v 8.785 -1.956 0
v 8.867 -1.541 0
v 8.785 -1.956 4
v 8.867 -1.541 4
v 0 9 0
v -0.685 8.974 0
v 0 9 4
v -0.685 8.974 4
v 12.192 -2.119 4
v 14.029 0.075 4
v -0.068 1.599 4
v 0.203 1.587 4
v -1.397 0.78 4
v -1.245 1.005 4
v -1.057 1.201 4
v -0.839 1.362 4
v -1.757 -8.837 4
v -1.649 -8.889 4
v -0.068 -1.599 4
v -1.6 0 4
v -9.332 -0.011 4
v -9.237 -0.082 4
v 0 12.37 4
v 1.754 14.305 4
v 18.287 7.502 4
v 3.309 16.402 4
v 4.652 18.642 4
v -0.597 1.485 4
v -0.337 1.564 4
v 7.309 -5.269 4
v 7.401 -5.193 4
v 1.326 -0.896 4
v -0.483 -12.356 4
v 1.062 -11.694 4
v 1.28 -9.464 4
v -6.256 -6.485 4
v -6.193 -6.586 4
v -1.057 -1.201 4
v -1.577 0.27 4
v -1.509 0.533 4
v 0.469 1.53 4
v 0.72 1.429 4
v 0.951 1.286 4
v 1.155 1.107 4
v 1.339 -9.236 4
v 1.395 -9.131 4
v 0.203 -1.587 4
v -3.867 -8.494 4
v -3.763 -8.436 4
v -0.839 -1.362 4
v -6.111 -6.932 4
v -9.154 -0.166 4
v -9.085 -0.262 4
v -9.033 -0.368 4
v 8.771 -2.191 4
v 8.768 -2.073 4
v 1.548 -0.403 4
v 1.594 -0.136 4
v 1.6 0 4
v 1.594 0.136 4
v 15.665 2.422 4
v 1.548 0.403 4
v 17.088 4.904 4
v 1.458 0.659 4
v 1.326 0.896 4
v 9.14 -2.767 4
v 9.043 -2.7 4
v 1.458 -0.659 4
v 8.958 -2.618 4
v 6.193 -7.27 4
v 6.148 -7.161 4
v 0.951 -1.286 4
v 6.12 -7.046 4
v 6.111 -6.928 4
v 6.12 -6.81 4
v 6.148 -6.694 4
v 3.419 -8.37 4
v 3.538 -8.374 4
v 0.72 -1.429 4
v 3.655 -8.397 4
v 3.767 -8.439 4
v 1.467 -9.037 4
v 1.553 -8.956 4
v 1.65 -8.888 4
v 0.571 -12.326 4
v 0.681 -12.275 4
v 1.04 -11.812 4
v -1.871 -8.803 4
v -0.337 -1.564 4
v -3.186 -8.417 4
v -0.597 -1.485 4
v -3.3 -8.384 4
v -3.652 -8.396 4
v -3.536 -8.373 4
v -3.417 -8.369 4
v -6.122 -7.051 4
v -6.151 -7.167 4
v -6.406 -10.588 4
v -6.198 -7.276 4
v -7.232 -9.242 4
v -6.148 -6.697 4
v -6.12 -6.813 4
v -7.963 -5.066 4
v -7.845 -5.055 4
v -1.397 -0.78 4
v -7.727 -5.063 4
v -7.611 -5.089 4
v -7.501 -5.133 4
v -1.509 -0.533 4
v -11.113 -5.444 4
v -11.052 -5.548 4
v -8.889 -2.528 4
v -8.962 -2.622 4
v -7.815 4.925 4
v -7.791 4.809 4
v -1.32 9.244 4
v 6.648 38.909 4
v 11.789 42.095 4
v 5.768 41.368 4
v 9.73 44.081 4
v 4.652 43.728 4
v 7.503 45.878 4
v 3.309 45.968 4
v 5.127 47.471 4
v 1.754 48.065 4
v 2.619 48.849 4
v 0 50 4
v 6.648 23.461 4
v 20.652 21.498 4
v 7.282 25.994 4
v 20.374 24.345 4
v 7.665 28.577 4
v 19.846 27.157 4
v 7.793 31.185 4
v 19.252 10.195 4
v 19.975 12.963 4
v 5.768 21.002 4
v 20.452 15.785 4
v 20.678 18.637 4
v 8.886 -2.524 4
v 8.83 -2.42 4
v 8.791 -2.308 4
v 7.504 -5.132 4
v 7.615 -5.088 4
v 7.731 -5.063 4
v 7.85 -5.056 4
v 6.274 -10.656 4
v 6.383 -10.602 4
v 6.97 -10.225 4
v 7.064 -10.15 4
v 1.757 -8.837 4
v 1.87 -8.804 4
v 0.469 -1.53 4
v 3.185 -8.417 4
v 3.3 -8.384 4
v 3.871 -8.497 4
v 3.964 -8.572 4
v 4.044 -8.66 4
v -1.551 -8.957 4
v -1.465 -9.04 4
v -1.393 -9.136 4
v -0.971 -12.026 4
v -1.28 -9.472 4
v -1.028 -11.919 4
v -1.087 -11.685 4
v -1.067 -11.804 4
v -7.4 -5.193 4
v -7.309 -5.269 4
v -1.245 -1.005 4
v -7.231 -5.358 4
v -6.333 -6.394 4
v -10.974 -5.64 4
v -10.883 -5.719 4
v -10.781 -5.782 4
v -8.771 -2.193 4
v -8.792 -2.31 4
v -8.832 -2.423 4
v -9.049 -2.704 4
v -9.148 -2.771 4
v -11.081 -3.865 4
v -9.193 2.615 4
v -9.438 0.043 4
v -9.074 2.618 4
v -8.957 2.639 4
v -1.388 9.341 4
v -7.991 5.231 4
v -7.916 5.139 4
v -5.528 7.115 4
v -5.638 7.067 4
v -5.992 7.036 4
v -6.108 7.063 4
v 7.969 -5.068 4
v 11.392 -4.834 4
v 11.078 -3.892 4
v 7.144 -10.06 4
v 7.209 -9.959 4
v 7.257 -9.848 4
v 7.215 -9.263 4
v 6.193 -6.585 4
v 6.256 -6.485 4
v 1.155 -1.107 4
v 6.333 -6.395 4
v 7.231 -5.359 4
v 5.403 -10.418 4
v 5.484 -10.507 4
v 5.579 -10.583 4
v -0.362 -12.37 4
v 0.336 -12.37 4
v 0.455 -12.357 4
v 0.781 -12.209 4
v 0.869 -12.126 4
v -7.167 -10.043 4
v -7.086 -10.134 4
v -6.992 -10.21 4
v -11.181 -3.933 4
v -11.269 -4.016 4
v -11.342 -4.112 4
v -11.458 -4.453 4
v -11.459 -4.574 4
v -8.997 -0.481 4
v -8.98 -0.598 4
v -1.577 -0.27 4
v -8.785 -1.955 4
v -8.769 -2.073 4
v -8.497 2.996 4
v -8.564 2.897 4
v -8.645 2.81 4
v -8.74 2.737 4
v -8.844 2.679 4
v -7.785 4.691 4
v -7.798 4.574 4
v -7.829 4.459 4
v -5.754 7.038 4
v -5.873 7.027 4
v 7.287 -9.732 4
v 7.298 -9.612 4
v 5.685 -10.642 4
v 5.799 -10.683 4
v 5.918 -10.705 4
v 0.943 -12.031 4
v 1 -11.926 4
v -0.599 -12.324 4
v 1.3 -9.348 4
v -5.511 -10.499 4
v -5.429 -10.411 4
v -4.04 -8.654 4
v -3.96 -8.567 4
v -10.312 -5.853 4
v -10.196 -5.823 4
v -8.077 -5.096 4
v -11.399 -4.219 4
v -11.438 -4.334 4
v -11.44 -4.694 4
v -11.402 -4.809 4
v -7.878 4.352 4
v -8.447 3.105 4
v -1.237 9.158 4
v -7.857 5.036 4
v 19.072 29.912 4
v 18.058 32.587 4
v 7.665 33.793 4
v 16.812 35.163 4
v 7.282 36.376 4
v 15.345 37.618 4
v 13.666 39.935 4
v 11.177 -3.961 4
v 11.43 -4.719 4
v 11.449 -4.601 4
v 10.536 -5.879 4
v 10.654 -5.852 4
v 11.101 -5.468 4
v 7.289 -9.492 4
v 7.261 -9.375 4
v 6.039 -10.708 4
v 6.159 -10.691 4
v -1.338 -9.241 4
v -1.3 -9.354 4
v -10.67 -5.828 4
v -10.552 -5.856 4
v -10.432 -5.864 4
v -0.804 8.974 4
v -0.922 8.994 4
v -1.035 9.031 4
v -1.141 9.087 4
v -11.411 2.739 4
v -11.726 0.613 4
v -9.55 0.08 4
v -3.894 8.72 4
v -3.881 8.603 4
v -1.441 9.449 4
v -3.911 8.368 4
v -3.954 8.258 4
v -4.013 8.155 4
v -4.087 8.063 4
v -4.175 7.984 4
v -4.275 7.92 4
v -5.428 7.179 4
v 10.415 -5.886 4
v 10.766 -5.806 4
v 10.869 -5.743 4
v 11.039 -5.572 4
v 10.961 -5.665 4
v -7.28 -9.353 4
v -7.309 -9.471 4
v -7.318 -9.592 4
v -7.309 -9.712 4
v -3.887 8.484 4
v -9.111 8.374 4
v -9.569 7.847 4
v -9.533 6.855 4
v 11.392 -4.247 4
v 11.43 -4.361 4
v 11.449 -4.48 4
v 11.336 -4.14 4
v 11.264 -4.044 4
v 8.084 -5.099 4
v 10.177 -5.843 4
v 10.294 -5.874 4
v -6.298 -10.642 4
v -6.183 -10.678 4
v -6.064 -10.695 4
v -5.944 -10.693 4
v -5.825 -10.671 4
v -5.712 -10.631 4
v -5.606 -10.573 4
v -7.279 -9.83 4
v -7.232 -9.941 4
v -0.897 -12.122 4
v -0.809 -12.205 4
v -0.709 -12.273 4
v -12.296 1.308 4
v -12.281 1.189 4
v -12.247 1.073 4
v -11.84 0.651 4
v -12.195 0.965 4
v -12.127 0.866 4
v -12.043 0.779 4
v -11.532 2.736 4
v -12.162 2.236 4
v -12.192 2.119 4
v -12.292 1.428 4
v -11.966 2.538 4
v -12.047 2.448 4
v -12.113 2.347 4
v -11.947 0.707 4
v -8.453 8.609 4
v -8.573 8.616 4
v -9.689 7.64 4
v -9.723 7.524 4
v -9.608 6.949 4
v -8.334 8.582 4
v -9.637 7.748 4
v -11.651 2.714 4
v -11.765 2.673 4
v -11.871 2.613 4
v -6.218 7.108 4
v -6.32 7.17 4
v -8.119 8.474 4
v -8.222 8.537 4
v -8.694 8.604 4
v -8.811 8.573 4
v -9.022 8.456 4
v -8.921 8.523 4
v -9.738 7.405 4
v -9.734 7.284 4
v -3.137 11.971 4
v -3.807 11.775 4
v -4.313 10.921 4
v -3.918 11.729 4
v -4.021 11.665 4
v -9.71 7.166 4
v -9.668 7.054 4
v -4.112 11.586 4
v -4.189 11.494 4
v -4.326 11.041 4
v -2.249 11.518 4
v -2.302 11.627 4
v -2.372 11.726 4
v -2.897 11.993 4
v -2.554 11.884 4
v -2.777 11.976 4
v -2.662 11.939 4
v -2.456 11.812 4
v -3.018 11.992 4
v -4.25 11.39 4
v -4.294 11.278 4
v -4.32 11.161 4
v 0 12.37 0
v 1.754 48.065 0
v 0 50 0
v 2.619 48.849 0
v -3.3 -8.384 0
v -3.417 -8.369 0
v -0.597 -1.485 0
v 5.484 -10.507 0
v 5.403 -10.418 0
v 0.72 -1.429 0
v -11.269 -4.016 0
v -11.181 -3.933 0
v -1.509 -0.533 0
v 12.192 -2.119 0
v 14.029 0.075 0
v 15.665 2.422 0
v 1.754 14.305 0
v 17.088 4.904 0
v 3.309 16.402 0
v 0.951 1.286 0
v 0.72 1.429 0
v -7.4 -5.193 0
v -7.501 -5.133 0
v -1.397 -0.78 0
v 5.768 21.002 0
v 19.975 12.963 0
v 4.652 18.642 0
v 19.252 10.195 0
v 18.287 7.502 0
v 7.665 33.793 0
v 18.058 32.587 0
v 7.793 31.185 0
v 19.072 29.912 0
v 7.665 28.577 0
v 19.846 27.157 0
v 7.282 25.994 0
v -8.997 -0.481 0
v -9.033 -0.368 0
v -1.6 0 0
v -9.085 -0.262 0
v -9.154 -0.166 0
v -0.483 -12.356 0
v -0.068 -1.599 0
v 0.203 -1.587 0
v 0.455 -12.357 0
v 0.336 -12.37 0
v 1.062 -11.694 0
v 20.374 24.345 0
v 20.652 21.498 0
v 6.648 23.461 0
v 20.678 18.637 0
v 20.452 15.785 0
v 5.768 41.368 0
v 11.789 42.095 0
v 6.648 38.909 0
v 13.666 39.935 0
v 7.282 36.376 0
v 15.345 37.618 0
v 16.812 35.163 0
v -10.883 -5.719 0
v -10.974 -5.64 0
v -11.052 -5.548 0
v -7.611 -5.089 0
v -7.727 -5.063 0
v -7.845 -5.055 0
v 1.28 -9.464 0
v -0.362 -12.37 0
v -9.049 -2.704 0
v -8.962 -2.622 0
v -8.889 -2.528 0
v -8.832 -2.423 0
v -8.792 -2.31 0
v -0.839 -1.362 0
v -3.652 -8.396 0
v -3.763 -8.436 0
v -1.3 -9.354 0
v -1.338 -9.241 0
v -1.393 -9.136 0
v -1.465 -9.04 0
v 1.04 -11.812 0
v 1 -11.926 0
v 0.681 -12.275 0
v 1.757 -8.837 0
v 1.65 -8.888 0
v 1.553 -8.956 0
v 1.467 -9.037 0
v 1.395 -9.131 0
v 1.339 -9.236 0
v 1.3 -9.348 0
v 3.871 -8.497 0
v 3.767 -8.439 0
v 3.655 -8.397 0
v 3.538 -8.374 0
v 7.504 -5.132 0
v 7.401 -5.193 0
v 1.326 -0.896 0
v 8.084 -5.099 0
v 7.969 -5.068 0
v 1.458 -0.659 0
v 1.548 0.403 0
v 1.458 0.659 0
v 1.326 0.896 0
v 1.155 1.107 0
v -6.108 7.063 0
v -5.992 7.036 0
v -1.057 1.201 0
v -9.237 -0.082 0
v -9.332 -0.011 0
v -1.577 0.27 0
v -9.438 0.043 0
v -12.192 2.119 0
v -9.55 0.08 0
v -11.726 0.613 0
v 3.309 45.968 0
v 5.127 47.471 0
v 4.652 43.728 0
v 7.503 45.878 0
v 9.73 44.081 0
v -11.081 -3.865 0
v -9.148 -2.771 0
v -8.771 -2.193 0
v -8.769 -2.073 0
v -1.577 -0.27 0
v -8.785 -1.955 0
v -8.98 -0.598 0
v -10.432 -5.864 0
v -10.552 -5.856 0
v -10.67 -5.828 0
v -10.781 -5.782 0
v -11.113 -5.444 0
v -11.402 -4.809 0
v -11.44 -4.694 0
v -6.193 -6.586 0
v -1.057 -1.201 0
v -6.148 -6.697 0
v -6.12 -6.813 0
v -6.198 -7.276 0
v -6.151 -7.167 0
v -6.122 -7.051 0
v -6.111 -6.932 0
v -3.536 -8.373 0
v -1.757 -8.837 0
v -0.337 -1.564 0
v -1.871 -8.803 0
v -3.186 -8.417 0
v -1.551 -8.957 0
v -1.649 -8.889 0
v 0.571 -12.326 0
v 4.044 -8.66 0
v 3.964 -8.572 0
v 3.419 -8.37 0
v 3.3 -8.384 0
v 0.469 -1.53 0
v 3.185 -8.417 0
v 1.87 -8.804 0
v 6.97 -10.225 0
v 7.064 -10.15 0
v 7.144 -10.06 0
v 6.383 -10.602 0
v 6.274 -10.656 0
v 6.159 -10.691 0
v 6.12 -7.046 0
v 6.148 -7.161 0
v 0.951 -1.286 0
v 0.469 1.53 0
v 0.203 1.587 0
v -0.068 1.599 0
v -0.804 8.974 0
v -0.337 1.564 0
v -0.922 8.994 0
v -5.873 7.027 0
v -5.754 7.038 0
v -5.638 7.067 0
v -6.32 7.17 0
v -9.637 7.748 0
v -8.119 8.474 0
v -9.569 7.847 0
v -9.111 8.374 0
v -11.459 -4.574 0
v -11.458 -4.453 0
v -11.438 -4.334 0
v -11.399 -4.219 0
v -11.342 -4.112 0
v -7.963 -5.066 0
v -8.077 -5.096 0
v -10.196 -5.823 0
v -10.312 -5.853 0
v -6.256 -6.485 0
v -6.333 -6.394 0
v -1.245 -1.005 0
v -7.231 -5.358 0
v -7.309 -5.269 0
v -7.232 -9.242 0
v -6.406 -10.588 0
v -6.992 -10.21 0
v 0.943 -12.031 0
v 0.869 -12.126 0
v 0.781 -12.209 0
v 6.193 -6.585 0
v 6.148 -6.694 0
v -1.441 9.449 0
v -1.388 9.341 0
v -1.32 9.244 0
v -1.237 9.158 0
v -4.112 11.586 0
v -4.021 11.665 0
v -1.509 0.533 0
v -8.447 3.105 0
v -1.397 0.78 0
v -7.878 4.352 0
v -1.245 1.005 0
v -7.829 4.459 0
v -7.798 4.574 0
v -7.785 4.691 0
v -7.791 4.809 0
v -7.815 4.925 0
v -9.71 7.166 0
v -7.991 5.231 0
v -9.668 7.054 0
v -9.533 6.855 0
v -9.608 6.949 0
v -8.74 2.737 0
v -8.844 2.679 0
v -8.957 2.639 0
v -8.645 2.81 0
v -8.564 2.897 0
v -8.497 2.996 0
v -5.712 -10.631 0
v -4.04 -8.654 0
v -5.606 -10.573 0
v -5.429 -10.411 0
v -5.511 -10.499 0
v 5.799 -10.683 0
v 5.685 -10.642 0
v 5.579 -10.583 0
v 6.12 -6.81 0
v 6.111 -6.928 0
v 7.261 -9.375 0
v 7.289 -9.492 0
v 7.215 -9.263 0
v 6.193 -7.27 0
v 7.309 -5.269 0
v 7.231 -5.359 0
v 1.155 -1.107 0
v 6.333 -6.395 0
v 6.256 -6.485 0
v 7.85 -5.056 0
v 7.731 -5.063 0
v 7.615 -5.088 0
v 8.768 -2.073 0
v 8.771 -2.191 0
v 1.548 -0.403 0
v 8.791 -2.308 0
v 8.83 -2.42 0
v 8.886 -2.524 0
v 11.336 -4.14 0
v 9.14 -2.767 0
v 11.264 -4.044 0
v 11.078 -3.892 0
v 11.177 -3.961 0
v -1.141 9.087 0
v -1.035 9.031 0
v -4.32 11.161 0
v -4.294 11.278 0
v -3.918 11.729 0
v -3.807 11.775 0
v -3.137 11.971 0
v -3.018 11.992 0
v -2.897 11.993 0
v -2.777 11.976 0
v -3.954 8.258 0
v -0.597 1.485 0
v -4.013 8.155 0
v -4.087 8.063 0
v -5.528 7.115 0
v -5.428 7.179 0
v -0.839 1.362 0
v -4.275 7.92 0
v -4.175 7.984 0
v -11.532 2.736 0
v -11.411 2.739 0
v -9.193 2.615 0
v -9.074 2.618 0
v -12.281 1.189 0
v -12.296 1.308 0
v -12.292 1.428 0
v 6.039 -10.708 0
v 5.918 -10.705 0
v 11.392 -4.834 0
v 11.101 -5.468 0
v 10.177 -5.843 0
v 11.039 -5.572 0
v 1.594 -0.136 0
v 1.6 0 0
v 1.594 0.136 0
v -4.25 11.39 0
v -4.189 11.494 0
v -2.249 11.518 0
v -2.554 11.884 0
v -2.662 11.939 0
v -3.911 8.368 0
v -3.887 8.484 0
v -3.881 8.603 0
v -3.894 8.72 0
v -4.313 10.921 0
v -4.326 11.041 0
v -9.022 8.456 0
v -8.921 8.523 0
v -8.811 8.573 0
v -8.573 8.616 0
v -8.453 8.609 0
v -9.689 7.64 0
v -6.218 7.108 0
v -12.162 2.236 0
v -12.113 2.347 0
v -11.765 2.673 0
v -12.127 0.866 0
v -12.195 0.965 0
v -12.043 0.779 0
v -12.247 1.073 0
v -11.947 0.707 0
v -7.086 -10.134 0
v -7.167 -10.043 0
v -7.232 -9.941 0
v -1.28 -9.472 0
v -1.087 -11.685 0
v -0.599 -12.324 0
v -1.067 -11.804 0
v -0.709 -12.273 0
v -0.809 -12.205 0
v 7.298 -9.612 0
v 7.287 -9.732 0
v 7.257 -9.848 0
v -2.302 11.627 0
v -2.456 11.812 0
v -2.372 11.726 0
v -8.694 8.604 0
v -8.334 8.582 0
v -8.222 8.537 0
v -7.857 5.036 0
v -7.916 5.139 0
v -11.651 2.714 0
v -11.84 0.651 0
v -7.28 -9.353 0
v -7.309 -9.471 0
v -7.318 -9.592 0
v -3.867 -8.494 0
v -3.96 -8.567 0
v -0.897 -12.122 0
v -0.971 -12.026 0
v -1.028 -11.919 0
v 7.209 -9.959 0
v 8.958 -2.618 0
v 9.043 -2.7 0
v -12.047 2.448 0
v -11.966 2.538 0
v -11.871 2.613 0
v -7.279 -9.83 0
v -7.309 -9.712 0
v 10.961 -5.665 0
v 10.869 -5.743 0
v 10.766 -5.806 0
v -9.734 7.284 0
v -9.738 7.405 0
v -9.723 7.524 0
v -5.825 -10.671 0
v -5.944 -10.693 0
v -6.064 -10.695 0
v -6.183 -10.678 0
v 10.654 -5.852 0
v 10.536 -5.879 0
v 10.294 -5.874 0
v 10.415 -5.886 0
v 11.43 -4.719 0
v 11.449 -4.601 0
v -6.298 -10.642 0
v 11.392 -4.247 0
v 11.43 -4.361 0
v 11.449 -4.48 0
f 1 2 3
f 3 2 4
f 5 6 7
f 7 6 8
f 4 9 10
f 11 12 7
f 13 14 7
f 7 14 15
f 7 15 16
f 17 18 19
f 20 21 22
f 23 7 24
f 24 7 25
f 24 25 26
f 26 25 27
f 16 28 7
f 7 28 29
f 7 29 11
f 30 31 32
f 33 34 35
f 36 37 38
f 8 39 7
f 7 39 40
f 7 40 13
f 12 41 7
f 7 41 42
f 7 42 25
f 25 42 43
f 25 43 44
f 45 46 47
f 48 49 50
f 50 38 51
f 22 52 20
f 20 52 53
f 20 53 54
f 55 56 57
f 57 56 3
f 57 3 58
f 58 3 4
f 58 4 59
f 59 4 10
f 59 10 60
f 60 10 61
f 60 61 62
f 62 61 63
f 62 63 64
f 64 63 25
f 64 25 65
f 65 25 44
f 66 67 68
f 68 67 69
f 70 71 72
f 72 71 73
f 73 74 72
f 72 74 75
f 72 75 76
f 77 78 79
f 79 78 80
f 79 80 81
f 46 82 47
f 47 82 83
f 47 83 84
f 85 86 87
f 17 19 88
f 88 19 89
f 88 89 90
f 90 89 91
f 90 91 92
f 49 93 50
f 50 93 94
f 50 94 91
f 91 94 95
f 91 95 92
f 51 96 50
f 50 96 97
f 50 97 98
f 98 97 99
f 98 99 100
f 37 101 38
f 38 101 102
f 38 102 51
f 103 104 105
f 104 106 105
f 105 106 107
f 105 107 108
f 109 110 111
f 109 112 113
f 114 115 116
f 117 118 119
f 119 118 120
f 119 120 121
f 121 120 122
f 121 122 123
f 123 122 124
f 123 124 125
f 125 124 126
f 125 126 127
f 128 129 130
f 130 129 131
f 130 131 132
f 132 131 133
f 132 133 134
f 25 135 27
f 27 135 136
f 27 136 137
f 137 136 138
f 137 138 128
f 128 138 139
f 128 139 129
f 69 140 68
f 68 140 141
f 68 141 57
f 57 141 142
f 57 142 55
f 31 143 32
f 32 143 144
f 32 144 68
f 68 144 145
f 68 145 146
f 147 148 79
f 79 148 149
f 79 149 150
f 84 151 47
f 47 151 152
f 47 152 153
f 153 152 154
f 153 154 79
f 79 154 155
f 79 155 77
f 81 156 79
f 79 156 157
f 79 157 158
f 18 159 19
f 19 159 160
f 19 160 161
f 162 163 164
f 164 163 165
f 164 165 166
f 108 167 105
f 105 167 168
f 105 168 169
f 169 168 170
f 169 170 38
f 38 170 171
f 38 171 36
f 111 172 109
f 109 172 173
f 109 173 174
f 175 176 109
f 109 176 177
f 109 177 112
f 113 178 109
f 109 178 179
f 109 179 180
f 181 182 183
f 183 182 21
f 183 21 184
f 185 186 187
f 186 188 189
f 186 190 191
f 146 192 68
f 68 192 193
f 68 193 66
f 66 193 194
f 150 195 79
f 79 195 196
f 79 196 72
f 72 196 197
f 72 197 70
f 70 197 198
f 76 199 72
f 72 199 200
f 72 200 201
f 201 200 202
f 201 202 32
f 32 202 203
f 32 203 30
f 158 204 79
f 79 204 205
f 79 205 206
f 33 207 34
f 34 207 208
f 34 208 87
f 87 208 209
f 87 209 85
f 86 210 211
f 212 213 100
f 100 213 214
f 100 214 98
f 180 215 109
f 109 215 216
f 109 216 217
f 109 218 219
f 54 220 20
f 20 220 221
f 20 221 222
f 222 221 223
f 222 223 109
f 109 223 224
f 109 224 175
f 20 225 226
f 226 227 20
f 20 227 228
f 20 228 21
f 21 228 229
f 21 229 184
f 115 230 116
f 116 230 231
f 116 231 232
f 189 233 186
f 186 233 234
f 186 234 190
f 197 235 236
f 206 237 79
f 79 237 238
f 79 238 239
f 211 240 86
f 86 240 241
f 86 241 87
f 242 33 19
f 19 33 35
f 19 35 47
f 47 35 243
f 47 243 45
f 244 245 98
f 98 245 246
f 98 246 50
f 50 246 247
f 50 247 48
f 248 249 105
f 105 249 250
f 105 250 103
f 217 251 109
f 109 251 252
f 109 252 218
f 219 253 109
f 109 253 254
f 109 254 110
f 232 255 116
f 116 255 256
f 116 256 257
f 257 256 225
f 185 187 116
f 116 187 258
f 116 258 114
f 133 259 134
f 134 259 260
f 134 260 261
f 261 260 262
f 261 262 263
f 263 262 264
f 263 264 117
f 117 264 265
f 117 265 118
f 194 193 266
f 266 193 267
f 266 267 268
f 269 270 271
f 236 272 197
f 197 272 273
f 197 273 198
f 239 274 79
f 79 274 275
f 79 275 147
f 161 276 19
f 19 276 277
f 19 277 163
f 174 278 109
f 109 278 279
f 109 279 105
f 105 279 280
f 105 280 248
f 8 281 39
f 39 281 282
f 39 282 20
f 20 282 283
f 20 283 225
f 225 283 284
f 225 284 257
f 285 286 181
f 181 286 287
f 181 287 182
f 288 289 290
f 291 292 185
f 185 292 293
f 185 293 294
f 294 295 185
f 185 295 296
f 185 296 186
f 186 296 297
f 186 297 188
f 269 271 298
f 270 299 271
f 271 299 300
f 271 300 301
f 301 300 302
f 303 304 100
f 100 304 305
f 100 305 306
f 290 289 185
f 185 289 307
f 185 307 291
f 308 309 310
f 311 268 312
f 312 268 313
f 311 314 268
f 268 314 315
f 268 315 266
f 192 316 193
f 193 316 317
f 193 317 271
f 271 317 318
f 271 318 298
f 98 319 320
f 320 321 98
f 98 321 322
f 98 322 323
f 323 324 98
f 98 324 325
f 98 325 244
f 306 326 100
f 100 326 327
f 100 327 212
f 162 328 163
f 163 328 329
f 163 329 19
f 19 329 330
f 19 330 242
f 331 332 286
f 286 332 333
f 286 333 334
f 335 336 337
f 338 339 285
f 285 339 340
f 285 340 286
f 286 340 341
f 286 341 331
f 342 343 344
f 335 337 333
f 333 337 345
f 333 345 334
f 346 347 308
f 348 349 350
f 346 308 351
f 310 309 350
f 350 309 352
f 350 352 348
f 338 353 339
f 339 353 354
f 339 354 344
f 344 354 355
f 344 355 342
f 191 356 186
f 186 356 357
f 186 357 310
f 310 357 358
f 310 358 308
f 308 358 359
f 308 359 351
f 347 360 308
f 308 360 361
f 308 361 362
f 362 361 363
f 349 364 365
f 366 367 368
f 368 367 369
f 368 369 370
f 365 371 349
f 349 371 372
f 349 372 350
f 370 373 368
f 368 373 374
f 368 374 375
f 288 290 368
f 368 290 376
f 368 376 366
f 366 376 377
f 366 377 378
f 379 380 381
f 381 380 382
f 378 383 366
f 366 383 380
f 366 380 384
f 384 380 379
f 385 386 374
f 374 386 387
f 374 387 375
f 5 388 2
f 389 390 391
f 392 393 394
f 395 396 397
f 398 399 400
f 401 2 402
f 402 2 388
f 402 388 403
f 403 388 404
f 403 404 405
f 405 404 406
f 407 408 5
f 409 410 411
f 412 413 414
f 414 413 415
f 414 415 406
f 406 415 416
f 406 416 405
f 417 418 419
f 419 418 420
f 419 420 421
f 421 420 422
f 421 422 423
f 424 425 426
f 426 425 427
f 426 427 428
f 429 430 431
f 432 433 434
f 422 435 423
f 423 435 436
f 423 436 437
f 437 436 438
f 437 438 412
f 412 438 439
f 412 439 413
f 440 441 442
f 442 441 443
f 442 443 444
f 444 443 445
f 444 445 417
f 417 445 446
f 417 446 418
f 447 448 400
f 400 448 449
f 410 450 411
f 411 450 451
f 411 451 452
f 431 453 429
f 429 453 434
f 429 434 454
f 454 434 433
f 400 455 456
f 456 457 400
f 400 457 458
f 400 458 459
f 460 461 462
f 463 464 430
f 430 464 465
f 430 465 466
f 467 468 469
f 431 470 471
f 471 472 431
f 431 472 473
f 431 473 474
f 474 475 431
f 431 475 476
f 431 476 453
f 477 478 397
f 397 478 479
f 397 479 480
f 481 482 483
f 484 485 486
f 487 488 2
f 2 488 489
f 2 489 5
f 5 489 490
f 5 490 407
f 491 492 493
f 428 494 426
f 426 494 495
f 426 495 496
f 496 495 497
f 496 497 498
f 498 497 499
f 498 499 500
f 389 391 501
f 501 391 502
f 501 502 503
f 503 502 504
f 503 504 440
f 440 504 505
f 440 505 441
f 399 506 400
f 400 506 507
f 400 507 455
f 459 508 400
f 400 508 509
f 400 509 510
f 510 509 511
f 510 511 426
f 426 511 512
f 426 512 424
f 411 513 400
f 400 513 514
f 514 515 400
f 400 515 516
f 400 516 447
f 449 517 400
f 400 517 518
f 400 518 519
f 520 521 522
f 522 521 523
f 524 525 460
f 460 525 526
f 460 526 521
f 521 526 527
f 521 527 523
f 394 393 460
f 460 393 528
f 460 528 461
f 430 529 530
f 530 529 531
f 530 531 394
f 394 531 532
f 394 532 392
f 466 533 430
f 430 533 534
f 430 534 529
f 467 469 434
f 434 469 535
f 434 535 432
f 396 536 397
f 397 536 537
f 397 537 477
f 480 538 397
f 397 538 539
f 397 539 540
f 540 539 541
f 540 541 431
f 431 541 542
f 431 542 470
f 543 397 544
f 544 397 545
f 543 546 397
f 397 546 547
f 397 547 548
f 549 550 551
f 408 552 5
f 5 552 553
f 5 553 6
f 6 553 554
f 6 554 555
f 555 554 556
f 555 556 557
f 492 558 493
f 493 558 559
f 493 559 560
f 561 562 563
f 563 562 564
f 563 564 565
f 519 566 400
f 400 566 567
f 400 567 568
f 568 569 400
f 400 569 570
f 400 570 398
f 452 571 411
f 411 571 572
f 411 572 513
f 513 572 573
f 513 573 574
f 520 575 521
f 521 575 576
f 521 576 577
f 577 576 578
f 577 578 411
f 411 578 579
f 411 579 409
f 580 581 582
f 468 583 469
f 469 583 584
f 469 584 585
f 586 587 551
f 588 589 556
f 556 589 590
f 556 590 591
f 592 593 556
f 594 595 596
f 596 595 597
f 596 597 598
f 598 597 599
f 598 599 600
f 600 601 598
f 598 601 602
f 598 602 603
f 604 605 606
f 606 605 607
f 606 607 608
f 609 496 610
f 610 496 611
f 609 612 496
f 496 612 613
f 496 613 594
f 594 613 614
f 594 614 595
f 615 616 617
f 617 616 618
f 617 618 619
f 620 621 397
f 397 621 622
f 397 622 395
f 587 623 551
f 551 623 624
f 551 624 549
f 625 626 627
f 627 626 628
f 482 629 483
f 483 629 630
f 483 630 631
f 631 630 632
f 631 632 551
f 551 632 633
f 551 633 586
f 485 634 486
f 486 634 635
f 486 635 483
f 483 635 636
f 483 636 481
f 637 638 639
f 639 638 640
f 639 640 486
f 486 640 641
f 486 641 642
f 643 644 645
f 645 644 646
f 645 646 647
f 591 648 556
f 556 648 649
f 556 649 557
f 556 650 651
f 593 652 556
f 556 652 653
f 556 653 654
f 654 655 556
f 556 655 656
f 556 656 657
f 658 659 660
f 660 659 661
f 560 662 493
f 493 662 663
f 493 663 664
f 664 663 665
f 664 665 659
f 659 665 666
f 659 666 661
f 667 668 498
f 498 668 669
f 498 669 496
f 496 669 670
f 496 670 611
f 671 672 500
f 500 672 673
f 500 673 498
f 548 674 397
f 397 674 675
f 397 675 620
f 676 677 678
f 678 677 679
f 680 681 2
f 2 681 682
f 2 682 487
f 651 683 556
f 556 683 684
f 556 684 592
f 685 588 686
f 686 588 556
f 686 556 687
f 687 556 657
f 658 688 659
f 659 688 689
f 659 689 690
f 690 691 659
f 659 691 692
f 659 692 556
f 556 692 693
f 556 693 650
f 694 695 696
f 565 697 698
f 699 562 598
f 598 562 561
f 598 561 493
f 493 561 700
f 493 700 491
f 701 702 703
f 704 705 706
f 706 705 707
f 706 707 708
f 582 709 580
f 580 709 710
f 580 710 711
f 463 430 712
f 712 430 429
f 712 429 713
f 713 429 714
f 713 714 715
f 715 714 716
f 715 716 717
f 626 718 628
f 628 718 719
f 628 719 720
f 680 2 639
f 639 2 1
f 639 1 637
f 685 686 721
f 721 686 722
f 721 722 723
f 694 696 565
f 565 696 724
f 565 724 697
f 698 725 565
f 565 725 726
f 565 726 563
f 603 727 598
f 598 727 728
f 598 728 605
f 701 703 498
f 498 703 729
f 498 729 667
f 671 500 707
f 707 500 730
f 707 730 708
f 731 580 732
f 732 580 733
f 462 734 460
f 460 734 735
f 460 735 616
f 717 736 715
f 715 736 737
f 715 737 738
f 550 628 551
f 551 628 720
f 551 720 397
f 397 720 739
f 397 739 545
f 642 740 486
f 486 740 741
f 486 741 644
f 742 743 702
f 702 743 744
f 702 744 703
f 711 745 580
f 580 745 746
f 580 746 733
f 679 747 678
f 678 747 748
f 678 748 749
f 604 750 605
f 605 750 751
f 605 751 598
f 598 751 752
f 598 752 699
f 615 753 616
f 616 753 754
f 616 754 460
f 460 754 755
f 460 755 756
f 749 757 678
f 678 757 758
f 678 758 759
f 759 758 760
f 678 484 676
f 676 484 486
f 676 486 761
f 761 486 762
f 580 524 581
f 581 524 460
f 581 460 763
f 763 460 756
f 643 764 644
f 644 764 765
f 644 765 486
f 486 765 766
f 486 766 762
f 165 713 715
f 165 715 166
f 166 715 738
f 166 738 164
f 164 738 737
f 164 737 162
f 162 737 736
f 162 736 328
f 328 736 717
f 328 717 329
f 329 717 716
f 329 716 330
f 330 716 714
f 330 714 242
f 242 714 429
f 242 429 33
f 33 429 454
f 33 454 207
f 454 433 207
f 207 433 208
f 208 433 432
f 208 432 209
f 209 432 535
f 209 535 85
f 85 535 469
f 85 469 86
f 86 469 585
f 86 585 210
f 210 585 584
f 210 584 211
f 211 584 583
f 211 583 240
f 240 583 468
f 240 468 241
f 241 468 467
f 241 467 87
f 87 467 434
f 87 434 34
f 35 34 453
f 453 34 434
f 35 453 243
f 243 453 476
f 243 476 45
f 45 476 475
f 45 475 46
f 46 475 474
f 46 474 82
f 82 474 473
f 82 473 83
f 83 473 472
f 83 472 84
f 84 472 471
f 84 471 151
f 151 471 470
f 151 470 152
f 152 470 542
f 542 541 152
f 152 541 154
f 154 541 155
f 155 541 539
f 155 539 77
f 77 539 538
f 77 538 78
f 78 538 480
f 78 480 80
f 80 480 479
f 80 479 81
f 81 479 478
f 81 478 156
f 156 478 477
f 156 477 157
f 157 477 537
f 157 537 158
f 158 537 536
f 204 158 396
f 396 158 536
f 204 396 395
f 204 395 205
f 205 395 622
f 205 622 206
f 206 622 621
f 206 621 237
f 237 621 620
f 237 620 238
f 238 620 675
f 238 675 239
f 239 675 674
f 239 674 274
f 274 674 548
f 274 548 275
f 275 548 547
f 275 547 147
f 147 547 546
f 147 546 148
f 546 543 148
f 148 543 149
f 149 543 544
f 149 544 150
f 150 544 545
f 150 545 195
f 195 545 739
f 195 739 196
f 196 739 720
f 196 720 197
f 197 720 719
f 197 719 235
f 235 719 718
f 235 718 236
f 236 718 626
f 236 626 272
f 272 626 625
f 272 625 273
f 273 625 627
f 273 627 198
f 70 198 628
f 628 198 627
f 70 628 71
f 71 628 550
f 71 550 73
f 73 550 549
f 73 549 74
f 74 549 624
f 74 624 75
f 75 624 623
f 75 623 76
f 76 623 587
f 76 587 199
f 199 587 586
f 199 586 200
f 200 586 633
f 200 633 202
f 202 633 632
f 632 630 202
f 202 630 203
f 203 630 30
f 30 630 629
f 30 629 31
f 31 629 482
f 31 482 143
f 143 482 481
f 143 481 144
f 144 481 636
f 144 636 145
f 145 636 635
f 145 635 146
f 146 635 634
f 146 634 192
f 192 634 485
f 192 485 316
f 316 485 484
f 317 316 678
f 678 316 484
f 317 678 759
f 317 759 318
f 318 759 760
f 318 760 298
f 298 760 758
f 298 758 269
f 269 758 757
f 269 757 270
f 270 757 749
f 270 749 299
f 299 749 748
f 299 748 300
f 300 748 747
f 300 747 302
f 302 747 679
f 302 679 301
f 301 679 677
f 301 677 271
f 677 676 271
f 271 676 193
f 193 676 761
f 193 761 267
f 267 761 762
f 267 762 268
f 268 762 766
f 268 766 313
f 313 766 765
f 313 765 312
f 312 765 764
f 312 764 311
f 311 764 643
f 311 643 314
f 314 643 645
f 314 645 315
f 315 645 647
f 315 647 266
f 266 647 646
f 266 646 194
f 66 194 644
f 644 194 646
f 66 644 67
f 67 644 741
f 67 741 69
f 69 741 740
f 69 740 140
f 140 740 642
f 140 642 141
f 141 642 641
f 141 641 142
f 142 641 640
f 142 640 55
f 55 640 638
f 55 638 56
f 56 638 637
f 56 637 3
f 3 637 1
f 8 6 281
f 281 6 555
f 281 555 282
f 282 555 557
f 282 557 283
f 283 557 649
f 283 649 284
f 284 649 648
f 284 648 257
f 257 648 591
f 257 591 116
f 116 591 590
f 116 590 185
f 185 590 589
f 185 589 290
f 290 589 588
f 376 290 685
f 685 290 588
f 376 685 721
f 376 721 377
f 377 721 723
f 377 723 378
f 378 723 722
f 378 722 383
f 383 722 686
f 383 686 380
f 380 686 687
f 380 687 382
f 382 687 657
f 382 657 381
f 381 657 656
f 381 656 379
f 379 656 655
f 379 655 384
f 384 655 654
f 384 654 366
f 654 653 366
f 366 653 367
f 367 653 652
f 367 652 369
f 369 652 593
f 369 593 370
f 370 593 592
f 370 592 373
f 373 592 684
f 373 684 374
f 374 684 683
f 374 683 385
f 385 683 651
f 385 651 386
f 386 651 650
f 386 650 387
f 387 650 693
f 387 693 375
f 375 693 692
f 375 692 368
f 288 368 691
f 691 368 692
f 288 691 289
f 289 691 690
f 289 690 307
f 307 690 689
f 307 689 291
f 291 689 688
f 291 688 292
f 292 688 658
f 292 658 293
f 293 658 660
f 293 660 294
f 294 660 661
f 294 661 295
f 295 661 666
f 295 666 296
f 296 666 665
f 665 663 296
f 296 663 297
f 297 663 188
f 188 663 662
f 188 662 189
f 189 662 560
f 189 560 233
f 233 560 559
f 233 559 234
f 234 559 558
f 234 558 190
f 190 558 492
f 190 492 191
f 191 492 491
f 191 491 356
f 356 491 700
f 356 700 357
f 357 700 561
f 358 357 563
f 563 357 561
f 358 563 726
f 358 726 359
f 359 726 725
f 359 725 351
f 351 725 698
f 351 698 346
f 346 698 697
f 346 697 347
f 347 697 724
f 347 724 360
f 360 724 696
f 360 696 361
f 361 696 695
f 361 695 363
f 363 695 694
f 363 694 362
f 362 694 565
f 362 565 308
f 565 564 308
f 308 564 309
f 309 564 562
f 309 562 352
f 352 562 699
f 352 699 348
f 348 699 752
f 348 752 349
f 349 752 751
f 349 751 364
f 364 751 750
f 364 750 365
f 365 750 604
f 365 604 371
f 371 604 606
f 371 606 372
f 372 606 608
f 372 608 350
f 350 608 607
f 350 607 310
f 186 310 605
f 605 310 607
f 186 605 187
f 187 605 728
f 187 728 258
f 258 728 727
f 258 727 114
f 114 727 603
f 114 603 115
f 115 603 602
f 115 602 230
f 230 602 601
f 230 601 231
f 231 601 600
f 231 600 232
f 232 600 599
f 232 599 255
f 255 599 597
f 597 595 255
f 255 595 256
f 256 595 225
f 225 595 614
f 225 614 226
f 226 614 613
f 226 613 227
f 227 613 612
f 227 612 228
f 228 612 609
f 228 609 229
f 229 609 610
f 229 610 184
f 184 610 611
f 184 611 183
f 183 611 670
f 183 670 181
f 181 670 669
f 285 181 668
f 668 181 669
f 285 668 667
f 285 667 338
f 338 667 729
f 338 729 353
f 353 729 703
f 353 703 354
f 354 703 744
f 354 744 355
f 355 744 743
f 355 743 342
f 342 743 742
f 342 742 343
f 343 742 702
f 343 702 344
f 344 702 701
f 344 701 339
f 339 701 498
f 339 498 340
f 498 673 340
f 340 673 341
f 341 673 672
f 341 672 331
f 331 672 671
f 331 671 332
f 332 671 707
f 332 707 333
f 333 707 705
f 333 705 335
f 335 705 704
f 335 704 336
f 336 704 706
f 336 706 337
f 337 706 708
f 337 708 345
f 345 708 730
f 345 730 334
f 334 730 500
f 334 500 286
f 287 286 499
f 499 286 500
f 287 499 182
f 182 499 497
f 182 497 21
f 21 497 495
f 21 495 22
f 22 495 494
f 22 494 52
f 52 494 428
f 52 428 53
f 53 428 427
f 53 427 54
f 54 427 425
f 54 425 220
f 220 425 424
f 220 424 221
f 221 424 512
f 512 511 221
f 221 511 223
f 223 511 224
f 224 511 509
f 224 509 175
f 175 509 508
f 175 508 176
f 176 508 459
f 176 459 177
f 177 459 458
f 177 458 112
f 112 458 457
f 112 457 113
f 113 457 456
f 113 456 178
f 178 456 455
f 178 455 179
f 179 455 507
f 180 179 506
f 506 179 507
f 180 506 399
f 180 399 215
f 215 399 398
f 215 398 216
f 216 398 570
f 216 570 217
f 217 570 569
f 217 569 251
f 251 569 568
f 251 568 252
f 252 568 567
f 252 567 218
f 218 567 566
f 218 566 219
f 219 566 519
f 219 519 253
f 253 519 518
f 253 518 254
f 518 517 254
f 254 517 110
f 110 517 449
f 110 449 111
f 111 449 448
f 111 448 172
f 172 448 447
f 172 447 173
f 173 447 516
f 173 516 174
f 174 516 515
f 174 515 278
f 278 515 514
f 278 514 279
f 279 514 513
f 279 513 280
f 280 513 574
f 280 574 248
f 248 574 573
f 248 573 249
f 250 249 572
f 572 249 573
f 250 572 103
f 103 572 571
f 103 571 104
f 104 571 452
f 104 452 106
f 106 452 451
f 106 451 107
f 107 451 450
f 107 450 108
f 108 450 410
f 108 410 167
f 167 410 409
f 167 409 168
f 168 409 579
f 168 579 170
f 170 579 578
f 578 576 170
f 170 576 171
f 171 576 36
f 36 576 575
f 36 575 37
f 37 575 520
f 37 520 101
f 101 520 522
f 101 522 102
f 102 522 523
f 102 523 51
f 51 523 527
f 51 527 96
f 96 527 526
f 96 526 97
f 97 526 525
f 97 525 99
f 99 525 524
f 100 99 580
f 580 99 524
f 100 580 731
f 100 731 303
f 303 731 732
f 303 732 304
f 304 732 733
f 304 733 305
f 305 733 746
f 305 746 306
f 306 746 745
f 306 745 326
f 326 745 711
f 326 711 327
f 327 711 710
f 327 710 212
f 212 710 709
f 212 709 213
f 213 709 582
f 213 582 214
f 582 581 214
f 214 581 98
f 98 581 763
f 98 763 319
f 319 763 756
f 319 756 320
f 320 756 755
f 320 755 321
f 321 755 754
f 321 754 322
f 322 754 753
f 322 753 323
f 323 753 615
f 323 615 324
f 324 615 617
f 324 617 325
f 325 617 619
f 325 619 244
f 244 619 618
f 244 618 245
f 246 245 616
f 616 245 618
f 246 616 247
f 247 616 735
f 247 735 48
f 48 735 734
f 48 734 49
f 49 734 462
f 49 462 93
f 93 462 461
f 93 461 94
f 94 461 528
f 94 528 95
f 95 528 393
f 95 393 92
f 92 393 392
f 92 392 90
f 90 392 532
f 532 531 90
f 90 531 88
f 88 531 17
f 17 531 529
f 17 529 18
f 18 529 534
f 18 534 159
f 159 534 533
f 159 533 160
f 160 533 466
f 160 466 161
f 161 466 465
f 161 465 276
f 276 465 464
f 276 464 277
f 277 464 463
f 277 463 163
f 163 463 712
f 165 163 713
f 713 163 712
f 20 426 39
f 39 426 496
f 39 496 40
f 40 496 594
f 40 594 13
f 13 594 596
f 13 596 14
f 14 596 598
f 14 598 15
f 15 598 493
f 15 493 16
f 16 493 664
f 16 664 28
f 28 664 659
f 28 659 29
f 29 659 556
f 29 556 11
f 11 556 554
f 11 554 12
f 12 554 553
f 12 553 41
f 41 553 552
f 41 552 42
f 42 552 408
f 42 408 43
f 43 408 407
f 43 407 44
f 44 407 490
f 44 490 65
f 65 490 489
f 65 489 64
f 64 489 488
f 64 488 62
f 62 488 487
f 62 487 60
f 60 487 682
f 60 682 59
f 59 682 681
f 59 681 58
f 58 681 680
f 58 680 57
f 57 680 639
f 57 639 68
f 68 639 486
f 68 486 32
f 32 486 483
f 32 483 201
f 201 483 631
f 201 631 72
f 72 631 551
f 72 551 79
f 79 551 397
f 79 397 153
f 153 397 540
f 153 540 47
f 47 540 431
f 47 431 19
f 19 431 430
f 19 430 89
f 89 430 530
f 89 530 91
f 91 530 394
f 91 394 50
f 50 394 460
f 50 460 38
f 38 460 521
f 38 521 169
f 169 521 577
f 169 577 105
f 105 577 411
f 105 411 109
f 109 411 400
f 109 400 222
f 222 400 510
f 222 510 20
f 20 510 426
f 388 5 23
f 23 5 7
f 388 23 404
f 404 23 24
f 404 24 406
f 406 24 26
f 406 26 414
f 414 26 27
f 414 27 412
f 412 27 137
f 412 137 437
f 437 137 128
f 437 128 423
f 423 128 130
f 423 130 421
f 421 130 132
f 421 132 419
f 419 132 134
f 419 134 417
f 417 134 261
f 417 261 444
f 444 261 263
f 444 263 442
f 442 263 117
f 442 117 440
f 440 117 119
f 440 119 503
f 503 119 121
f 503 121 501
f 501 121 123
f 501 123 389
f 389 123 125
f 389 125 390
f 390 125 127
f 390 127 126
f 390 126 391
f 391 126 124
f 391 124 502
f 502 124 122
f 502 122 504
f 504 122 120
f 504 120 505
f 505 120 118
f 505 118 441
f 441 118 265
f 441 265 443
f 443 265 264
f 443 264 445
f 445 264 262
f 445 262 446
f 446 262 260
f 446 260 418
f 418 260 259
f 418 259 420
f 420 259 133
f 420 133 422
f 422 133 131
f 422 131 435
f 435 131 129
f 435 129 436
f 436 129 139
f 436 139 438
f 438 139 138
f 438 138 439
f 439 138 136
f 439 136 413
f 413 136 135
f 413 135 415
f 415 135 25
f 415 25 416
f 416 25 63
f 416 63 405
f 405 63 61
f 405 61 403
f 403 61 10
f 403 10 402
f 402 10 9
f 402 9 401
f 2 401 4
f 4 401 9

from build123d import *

# Parameters (mm, degrees)
ESBO_O1_R                = 1.6
RESSALTO_EXTRUS_O1_DEPTH = 4
RESSALTO_EXTRUS_O2_START = -4
RESSALTO_EXTRUS_O2_DEPTH = 4


with BuildPart() as part:
    # Esboço1 → Ressalto-extrusão1 (new body)
    with BuildSketch(Plane.XY):
        with BuildLine():
            Line((-5.428931338, -10.411256864), (-4.040153116, -8.653603149))
            ThreePointArc((-4.040153116, -8.653603149), (-3.651813796, -8.395770502), (-3.186165661, -8.417146095))
            ThreePointArc((-3.186165661, -8.417146095), (-2.535977815, -8.635323765), (-1.871064211, -8.803358377))
            ThreePointArc((-1.871064211, -8.803358377), (-1.465141223, -9.040151498), (-1.27980553, -9.472002324))
            Line((-1.27980553, -9.472002324), (-1.087391415, -11.684866251))
            ThreePointArc((-1.087391415, -11.684866251), (-0.855086446, -12.165243662), (-0.362160028, -12.369575749))
            ThreePointArc((-0.362160028, -12.369575749), (-0.013315066, -12.374869163), (0.335540479, -12.370326458))
            ThreePointArc((0.335540479, -12.370326458), (0.826548297, -12.16926195), (1.061642754, -11.693608494))
            Line((1.061642754, -11.693608494), (1.279697998, -9.464145904))
            ThreePointArc((1.279697998, -9.464145904), (1.466994971, -9.037291191), (1.870279627, -8.803525096))
            ThreePointArc((1.870279627, -8.803525096), (2.535208203, -8.635549743), (3.185415492, -8.41743002))
            ThreePointArc((3.185415492, -8.41743002), (3.654919666, -8.397174533), (4.044310156, -8.660270526))
            Line((4.044310156, -8.660270526), (5.402543773, -10.417823198))
            ThreePointArc((5.402543773, -10.417823198), (5.857682784, -10.696348844), (6.382829142, -10.601747792))
            ThreePointArc((6.382829142, -10.601747792), (6.679158034, -10.41760107), (6.970178022, -10.225173956))
            ThreePointArc((6.970178022, -10.225173956), (7.274536404, -9.790568861), (7.215152773, -9.263322051))
            Line((7.215152773, -9.263322051), (6.19325404, -7.269889205))
            ThreePointArc((6.19325404, -7.269889205), (6.120043199, -6.809535782), (6.332924348, -6.394847082))
            ThreePointArc((6.332924348, -6.394847082), (6.80148353, -5.894049694), (7.230548283, -5.359027107))
            ThreePointArc((7.230548283, -5.359027107), (7.614569385, -5.088153986), (8.084385943, -5.098964027))
            Line((8.084385943, -5.098964027), (10.177209485, -5.843194888))
            ThreePointArc((10.177209485, -5.843194888), (10.710679119, -5.831438844), (11.101315158, -5.46793982))
            ThreePointArc((11.101315158, -5.46793982), (11.251045651, -5.152818244), (11.391833292, -4.833600971))
            ThreePointArc((11.391833292, -4.833600971), (11.412910602, -4.303439334), (11.077902766, -3.891996308))
            Line((11.077902766, -3.891996308), (9.140495683, -2.76749405))
            ThreePointArc((9.140495683, -2.76749405), (8.830020954, -2.419800875), (8.784910335, -1.955850303))
            ThreePointArc((8.784910335, -1.955850303), (8.908335893, -1.281230512), (8.980033083, -0.599170952))
            ThreePointArc((8.980033083, -0.599170952), (9.156647127, -0.163680499), (9.557726315, 0.081227523))
            Line((9.557726315, 0.081227523), (11.720683094, 0.586606513))
            ThreePointArc((11.720683094, 0.586606513), (12.163110512, 0.884911785), (12.295212049, 1.401900411))
            ThreePointArc((12.295212049, 1.401900411), (12.25080577, 1.747947966), (12.196661982, 2.09260617))
            ThreePointArc((12.196661982, 2.09260617), (11.927766323, 2.550001774), (11.423496904, 2.715010763))
            Line((11.423496904, 2.715010763), (9.185694531, 2.613560912))
            ThreePointArc((9.185694531, 2.613560912), (8.736529446, 2.738203711), (8.447749362, 3.104115127))
            ThreePointArc((8.447749362, 3.104115127), (8.186854553, 3.738370305), (7.878420829, 4.350917747))
            ThreePointArc((7.878420829, 4.350917747), (7.791554103, 4.812760389), (7.996556113, 5.235629909))
            Line((7.996556113, 5.235629909), (9.542922635, 6.83016449))
            ThreePointArc((9.542922635, 6.83016449), (9.753840257, 7.320309176), (9.585465989, 7.826647167))
            ThreePointArc((9.585465989, 7.826647167), (9.361021617, 8.093753047), (9.129136671, 8.354425638))
            ThreePointArc((9.129136671, 8.354425638), (8.655640515, 8.593835336), (8.142211489, 8.4600211))
            Line((8.142211489, 8.4600211), (6.314500268, 7.16482875))
            ThreePointArc((6.314500268, 7.16482875), (5.869251568, 7.026847967), (5.428487655, 7.178545938))
            ThreePointArc((5.428487655, 7.178545938), (4.866104738, 7.571064963), (4.275465628, 7.919620803))
            ThreePointArc((4.275465628, 7.919620803), (3.952697704, 8.26118386), (3.896535847, 8.727756791))
            Line((3.896535847, 8.727756791), (4.335351667, 10.905193502))
            ThreePointArc((4.335351667, 10.905193502), (4.247794638, 11.431560125), (3.832402205, 11.766488747))
            ThreePointArc((3.832402205, 11.766488747), (3.499179242, 11.869848724), (3.16317497, 11.963773995))
            ThreePointArc((3.16317497, 11.963773995), (2.635410001, 11.909186901), (2.275831457, 11.519034514))
            Line((2.275831457, 11.519034514), (1.438496786, 9.441314085))
            ThreePointArc((1.438496786, 9.441314085), (1.138527788, 9.084517642), (0.685719474, 8.973839134))
            ThreePointArc((0.685719474, 8.973839134), (0.000401051, 8.999999991), (-0.684919701, 8.973900211))
            ThreePointArc((-0.684919701, 8.973900211), (-1.141112287, 9.086739826), (-1.440607019, 9.44888256))
            Line((-1.440607019, 9.44888256), (-2.248662823, 11.517900629))
            ThreePointArc((-2.248662823, 11.517900629), (-2.606895765, 11.913371507), (-3.137422201, 11.970553289))
            ThreePointArc((-3.137422201, 11.970553289), (-3.473627818, 11.877351299), (-3.807072434, 11.774708641))
            ThreePointArc((-3.807072434, 11.774708641), (-4.221544568, 11.44345577), (-4.313108983, 10.920835859))
            Line((-4.313108983, 10.920835859), (-3.894219261, 8.720248907))
            ThreePointArc((-3.894219261, 8.720248907), (-3.953670521, 8.257917155), (-4.274759795, 7.920001811))
            ThreePointArc((-4.274759795, 7.920001811), (-4.865429967, 7.571498612), (-5.427847864, 7.179029709))
            ThreePointArc((-5.427847864, 7.179029709), (-5.87262719, 7.0273201), (-6.320367336, 7.170054878))
            Line((-6.320367336, 7.170054878), (-8.118742756, 8.473755688))
            ThreePointArc((-8.118742756, 8.473755688), (-8.633915182, 8.612771611), (-9.111137226, 8.374051741))
            ThreePointArc((-9.111137226, 8.374051741), (-9.343582589, 8.113878758), (-9.56860124, 7.847256489))
            ThreePointArc((-9.56860124, 7.847256489), (-9.738188564, 7.344508289), (-9.532667795, 6.855348982))
            Line((-9.532667795, 6.855348982), (-7.990548209, 5.230566315))
            ThreePointArc((-7.990548209, 5.230566315), (-7.790606374, 4.809486318), (-7.878033033, 4.351619874))
            ThreePointArc((-7.878033033, 4.351619874), (-8.186521347, 3.739099922), (-8.447472682, 3.104867999))
            ThreePointArc((-8.447472682, 3.104867999), (-8.739624454, 2.736775896), (-9.19345568, 2.614785434))
            Line((-9.19345568, 2.614785434), (-11.411179228, 2.739253189))
            ThreePointArc((-11.411179228, 2.739253189), (-11.919727533, 2.577677583), (-12.192130558, 2.118847933))
            ThreePointArc((-12.192130558, 2.118847933), (-12.247015907, 1.774307042), (-12.292166761, 1.428355848))
            ThreePointArc((-12.292166761, 1.428355848), (-12.163026498, 0.913731319), (-11.725671937, 0.61333724))
            Line((-11.725671937, 0.61333724), (-9.549934558, 0.080215876))
            ThreePointArc((-9.549934558, 0.080215876), (-9.15407975, -0.165922443), (-8.980086447, -0.598370627))
            ThreePointArc((-8.980086447, -0.598370627), (-8.908450044, -1.280436574), (-8.78508461, -1.955067363))
            ThreePointArc((-8.78508461, -1.955067363), (-8.831852706, -2.422675318), (-9.147686805, -2.77065991))
            Line((-9.147686805, -2.77065991), (-11.080646922, -3.864942843))
            ThreePointArc((-11.080646922, -3.864942843), (-11.421110614, -4.275810864), (-11.402208583, -4.809075122))
            ThreePointArc((-11.402208583, -4.809075122), (-11.262108208, -5.128594624), (-11.113056187, -5.444037682))
            ThreePointArc((-11.113056187, -5.444037682), (-10.726189458, -5.807148888), (-10.195858089, -5.823404741))
            Line((-10.195858089, -5.823404741), (-8.077284162, -5.095602537))
            ThreePointArc((-8.077284162, -5.095602537), (-7.611197484, -5.088652), (-7.231025864, -5.358382681))
            ThreePointArc((-7.231025864, -5.358382681), (-6.802008795, -5.893443506), (-6.333494247, -6.394282651))
            ThreePointArc((-6.333494247, -6.394282651), (-6.120030126, -6.812944237), (-6.197592003, -7.27644031))
            Line((-6.197592003, -7.27644031), (-7.232087511, -9.242046831))
            ThreePointArc((-7.232087511, -9.242046831), (-7.296371772, -9.771759573), (-6.992165948, -10.210150805))
            ThreePointArc((-6.992165948, -10.210150805), (-6.701560727, -10.403203734), (-6.405628795, -10.587987714))
            ThreePointArc((-6.405628795, -10.587987714), (-5.883863054, -10.684300355), (-5.428931338, -10.411256864))
        make_face()
        Circle(ESBO_O1_R, mode=Mode.SUBTRACT)
    extrude(amount=RESSALTO_EXTRUS_O1_DEPTH)

    # Esboço6 → Ressalto-extrusão2 (add)
    with BuildSketch(Plane.XY.offset(4).offset(RESSALTO_EXTRUS_O2_START)):
        with BuildLine():
            Line((0, 12.37), (0, 9))
            ThreePointArc((0, 9), (6.887269468, 5.79357569), (8.867092658, -1.540995716))
            Line((8.867092658, -1.540995716), (12.192130558, -2.118847933))
            ThreePointArc((12.192130558, -2.118847933), (19.845997755, 27.157089417), (0, 50))
            ThreePointArc((0, 50), (7.793428176, 31.185), (0, 12.37))
        make_face()
    extrude(amount=RESSALTO_EXTRUS_O2_DEPTH)


solid = part.part
